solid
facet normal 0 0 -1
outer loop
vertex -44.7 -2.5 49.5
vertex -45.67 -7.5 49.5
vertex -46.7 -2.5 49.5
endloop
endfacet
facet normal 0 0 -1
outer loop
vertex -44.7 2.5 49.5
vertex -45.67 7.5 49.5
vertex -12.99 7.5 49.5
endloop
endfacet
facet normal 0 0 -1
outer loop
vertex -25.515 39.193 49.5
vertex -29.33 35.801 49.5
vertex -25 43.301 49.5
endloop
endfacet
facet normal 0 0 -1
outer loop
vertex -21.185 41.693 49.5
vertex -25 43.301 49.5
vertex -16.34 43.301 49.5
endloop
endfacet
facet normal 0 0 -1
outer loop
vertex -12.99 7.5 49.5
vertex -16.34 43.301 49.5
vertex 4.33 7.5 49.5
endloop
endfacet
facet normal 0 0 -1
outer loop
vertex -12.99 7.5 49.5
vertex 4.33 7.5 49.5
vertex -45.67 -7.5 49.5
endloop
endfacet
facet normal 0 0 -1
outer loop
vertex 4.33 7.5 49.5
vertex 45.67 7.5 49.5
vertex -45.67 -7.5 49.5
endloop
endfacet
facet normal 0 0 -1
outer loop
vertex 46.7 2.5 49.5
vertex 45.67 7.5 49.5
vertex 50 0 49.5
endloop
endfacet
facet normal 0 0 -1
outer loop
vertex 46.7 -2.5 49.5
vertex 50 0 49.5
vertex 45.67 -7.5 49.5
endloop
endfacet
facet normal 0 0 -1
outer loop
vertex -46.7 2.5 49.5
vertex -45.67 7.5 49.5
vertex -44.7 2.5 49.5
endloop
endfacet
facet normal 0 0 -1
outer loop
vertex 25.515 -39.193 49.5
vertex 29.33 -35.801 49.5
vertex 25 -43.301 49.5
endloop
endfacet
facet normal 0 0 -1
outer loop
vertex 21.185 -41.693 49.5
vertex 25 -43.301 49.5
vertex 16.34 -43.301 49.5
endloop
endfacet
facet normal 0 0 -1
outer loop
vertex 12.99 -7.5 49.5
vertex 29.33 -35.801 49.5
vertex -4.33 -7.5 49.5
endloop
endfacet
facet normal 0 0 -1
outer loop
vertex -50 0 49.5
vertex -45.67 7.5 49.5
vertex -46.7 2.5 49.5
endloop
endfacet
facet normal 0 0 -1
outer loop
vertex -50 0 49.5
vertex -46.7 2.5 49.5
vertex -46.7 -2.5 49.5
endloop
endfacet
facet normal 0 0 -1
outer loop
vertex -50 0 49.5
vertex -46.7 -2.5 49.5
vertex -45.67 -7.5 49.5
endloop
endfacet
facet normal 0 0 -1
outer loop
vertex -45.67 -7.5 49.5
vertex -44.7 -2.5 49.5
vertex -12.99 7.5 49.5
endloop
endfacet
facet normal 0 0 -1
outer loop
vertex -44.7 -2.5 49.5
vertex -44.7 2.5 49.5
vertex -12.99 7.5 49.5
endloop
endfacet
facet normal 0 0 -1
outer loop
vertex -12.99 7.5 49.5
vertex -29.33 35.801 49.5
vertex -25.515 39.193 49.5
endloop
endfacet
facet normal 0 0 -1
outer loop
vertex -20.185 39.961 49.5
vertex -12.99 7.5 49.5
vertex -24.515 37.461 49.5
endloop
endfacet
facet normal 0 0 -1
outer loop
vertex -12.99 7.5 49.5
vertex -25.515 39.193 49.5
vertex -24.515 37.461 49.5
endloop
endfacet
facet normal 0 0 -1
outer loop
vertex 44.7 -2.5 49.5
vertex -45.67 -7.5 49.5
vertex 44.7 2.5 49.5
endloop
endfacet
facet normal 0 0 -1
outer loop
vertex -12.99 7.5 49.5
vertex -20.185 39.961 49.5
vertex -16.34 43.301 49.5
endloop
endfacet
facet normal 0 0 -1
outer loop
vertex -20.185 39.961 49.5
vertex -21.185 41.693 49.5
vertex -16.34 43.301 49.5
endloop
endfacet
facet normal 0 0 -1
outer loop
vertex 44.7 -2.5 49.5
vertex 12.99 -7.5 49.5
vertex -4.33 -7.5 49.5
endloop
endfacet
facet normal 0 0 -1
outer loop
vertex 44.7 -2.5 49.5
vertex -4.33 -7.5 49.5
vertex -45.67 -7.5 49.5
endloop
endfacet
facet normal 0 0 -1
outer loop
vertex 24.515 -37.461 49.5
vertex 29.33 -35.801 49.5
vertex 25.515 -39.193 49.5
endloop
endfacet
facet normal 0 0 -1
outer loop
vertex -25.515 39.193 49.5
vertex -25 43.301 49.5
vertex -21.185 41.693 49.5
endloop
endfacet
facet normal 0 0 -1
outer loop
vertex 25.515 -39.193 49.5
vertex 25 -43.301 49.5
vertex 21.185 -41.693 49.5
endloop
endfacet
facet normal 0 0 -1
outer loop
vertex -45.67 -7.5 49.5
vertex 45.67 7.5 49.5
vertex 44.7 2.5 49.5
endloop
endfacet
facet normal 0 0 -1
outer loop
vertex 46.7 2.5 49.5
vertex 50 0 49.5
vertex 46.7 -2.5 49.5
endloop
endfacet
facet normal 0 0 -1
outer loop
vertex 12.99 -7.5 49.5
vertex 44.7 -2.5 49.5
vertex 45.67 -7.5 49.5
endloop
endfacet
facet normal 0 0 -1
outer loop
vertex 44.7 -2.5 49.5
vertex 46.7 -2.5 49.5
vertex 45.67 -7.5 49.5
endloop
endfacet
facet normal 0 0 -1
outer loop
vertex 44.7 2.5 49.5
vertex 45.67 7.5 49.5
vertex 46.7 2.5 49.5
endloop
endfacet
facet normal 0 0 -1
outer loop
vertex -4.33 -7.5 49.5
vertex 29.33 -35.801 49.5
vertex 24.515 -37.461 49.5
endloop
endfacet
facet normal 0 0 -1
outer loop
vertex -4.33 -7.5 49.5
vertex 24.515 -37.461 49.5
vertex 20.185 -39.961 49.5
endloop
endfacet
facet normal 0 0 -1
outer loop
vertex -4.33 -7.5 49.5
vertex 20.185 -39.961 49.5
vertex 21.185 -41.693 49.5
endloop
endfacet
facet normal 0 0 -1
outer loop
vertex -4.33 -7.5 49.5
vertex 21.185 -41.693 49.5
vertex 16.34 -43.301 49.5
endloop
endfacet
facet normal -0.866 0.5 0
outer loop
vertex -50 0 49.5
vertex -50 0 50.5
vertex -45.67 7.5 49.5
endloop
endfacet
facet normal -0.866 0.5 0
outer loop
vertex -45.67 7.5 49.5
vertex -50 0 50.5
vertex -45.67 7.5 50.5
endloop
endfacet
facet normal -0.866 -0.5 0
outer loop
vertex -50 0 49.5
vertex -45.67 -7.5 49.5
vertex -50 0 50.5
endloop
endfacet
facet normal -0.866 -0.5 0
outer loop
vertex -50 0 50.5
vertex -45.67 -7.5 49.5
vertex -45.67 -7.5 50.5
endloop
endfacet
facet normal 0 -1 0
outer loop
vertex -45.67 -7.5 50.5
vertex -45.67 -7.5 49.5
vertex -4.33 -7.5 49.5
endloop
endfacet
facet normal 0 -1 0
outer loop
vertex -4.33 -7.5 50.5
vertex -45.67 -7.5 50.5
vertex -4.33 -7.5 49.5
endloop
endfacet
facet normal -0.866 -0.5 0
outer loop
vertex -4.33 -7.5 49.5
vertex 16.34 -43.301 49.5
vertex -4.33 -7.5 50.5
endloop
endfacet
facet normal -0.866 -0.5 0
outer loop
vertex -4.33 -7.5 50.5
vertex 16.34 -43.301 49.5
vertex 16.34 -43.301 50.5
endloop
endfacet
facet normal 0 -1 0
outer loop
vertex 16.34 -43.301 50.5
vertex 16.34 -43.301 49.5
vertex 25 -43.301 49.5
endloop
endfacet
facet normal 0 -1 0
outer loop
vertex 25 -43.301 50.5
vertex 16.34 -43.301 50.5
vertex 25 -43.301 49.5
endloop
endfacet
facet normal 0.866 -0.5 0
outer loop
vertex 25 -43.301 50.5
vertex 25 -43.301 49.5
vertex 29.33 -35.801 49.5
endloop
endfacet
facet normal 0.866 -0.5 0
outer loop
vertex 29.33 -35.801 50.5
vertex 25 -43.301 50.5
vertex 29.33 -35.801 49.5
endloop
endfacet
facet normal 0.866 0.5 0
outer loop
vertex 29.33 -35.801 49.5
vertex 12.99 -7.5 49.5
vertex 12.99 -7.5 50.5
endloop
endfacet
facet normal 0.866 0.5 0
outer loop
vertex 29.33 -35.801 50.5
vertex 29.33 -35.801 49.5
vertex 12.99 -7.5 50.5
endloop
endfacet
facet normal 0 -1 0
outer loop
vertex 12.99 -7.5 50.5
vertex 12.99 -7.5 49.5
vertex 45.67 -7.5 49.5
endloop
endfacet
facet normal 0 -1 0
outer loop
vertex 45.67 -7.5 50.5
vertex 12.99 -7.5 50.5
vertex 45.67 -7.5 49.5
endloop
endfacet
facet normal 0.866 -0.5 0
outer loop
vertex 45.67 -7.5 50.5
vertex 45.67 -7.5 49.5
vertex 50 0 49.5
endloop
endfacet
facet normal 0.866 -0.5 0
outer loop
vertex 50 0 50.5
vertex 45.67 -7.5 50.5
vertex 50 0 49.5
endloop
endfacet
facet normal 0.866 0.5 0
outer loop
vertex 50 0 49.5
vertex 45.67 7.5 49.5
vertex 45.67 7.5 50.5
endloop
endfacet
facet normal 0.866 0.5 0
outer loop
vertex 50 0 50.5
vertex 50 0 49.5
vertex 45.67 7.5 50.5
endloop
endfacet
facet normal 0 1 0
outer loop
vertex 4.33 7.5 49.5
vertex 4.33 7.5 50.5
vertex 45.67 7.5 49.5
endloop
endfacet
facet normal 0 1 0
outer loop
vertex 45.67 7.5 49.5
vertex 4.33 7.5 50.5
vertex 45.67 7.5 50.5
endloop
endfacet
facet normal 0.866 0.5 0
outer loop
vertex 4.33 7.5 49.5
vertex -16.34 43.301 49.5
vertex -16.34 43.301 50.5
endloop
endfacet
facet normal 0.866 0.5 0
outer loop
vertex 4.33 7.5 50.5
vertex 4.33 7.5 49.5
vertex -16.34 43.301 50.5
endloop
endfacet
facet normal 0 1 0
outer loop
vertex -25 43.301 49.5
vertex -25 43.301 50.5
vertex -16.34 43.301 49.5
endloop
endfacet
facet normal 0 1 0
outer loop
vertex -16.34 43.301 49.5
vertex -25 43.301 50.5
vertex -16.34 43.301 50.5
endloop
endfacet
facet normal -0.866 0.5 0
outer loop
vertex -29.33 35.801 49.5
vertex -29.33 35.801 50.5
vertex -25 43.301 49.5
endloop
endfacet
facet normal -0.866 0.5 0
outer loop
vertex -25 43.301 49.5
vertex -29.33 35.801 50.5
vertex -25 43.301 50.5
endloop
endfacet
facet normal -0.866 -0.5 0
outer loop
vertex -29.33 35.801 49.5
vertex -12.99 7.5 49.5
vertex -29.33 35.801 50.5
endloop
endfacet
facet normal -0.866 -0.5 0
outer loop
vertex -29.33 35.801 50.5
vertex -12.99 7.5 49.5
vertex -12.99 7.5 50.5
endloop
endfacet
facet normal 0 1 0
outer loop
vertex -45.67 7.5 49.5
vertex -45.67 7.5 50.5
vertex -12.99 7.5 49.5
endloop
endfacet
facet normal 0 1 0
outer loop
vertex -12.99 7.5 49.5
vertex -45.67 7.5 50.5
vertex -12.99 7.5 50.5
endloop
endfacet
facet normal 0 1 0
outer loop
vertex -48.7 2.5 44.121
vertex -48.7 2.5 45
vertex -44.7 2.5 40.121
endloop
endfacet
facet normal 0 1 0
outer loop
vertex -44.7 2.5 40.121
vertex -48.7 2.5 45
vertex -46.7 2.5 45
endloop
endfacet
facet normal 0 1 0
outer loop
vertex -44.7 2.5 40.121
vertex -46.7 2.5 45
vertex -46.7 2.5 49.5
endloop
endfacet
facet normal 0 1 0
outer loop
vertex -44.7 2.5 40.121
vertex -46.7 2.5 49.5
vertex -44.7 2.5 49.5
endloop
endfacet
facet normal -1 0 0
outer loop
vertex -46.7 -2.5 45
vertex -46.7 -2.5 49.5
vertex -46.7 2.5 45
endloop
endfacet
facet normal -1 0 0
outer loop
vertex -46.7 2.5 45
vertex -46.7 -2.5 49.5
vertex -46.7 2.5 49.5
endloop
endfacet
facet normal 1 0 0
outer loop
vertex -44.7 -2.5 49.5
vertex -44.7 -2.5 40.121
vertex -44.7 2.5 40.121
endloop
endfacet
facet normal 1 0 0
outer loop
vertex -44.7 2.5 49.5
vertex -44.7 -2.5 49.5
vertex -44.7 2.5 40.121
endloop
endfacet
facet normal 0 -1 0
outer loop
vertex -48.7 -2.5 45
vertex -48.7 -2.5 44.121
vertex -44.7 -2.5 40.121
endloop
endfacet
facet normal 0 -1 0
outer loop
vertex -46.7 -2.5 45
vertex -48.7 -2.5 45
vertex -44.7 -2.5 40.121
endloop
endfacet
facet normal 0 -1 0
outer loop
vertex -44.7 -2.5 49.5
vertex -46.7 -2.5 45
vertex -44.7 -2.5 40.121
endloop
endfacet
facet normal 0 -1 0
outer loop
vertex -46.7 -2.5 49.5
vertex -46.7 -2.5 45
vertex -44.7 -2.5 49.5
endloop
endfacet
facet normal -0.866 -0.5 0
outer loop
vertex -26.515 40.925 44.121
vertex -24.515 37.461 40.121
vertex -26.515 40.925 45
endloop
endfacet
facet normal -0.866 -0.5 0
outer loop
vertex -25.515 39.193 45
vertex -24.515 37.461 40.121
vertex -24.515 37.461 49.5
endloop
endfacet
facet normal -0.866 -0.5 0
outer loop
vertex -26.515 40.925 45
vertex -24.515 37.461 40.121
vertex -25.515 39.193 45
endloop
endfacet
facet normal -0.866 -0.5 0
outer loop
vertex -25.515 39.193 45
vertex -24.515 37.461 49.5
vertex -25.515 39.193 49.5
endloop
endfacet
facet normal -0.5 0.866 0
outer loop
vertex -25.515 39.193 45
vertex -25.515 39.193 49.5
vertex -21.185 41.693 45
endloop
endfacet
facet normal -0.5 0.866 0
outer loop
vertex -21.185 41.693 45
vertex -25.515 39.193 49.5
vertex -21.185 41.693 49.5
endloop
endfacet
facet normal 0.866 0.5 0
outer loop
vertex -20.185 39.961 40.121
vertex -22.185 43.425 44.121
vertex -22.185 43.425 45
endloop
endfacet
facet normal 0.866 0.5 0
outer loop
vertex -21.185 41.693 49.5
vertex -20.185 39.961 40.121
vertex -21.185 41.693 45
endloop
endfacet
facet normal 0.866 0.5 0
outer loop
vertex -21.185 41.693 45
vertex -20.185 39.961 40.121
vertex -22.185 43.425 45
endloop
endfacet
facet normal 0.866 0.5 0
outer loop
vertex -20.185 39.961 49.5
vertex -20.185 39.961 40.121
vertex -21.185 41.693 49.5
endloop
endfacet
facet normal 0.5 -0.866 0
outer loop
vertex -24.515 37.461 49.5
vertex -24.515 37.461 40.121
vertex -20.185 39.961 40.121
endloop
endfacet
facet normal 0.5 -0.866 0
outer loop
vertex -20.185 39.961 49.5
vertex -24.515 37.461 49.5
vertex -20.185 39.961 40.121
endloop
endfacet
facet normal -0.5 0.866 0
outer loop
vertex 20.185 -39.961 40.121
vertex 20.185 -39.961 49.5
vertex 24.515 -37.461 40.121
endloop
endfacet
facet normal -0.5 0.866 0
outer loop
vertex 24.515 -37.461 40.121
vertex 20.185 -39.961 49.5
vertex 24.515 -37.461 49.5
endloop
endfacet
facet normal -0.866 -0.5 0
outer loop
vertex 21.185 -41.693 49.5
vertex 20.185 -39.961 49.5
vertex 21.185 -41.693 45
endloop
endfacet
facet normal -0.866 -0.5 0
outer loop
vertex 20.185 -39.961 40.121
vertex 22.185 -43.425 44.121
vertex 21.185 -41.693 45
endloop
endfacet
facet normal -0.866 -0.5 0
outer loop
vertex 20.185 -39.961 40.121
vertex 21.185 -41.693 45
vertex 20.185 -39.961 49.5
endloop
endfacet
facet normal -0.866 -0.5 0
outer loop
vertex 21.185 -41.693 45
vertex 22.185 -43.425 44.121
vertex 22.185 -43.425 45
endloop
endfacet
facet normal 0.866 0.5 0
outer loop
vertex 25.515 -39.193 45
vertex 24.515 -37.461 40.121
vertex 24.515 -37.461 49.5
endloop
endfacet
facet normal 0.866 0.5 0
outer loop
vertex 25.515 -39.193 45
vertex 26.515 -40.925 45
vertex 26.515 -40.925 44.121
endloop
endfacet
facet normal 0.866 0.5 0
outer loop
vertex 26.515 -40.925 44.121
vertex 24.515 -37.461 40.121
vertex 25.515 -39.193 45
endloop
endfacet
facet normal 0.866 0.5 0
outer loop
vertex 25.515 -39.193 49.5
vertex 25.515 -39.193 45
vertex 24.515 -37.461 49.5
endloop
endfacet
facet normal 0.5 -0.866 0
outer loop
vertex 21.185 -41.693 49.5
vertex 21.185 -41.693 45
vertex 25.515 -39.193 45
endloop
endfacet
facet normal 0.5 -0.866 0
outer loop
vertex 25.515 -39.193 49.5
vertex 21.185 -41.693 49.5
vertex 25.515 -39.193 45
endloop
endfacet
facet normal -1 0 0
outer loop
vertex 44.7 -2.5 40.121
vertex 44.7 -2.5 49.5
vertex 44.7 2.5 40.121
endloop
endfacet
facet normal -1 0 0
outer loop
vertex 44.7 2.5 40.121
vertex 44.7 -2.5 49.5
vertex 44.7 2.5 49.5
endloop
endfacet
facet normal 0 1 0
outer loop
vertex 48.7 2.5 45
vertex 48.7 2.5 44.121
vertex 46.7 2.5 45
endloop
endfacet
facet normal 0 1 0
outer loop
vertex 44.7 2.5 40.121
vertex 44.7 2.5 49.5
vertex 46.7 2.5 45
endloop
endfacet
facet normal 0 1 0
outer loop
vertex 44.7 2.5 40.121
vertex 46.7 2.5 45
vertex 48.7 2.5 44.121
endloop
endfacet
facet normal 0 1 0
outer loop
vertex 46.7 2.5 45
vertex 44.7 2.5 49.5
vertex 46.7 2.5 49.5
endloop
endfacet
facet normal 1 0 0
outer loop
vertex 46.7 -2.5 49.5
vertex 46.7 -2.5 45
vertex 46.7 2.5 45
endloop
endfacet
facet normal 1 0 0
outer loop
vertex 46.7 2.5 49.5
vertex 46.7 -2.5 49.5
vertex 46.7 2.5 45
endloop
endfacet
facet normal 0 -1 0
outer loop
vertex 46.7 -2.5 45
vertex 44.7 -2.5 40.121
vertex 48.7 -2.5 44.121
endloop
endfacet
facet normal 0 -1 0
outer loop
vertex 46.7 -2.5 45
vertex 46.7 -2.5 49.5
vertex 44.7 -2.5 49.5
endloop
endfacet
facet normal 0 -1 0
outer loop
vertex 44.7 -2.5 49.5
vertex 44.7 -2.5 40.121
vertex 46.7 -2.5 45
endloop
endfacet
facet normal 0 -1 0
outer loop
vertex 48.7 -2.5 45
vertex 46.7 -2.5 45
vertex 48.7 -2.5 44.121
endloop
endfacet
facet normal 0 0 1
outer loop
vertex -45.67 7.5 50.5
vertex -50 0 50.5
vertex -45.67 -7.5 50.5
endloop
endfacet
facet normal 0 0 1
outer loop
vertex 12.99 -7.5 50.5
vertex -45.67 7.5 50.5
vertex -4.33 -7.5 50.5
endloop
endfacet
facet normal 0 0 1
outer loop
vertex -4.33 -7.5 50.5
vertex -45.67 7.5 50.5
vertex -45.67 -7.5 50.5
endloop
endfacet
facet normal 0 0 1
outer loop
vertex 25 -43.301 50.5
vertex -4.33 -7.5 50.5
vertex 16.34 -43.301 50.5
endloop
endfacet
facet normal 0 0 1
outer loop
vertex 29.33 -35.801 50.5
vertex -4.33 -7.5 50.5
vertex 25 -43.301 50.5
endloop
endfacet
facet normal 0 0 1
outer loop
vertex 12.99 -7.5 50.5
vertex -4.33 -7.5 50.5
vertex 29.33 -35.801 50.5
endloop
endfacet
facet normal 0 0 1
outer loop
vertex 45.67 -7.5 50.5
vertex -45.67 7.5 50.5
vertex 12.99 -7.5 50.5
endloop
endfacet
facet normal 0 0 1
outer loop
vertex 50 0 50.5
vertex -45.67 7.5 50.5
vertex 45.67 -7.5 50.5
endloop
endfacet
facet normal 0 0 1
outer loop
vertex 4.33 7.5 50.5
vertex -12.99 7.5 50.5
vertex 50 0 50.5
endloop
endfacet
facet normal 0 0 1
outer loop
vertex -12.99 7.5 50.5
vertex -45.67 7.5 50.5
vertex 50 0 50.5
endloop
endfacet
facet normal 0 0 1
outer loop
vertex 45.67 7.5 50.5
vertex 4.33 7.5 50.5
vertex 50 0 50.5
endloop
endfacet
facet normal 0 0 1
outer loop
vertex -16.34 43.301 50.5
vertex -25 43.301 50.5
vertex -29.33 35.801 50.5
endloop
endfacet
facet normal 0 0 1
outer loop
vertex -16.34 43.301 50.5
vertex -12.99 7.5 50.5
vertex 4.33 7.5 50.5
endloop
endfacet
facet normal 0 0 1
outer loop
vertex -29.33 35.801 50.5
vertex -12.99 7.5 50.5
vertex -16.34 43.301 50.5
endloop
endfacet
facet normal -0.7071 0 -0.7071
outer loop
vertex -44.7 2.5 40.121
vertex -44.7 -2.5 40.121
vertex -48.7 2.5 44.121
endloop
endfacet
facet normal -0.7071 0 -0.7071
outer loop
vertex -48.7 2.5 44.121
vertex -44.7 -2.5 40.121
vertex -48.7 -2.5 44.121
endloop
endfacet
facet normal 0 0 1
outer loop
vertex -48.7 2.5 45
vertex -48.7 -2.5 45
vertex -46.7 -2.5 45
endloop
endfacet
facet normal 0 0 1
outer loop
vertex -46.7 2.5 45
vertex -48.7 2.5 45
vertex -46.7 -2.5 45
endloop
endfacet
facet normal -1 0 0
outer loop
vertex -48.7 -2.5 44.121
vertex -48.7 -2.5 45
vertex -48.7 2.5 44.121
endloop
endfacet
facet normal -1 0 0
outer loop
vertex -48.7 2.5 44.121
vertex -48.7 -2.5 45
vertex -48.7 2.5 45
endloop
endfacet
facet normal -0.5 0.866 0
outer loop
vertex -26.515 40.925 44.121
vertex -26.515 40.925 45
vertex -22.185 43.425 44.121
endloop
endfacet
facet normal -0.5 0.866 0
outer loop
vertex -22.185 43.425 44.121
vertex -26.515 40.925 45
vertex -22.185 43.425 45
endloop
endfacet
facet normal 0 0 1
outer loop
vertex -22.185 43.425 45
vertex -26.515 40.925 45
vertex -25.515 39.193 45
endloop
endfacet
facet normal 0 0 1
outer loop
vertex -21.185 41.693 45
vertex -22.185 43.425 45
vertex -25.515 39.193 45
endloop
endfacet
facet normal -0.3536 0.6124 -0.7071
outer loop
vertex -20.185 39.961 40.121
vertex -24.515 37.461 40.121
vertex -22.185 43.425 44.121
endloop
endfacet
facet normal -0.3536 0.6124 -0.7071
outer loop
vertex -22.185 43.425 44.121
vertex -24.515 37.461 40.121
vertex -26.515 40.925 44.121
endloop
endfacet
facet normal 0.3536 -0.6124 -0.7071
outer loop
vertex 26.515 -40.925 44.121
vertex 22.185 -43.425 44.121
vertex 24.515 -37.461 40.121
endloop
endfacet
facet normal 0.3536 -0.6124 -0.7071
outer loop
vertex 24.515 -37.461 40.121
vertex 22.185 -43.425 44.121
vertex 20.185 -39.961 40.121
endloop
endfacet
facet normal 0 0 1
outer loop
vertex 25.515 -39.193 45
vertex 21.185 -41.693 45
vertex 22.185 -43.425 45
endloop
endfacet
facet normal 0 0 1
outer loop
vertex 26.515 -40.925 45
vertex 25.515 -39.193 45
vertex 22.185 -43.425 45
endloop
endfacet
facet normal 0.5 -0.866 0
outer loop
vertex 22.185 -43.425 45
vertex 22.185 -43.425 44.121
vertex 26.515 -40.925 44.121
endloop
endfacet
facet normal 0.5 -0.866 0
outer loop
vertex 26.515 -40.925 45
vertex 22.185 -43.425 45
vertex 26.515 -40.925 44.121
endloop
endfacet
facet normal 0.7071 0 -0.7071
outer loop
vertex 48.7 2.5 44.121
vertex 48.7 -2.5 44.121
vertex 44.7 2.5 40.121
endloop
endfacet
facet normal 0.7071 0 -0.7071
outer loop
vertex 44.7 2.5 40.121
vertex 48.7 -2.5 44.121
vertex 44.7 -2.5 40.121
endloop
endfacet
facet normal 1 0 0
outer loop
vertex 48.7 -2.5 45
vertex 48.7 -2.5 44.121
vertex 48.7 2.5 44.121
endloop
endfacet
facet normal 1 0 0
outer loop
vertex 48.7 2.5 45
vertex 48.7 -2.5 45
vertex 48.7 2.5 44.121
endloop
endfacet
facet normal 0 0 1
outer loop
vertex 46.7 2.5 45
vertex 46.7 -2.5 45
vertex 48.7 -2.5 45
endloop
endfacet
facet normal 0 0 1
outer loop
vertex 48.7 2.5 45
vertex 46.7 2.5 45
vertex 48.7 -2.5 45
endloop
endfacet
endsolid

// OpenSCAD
width = 50;
height = 40;
wall_thickness = 2;
face_thickness = 1;
screw_radius = 2;
notch_height = 10;

module notch() {	
	difference() {
		union() {
			cube([5, wall_thickness, notch_height]);
			translate([0, -wall_thickness, 0])
				cube([5, wall_thickness, notch_height / 2]);
		}
		rotate([45, 0, 0])
			translate([0, -2.5, -1.5])
				cube([5, wall_thickness * 2, 7]);
	}
}

module lid() {
	intersection() {
		cylinder(r=width, h=face_thickness, $fn=6, center=true);
		for (i=[0:1]) {
			rotate([0, 0, 360 / 6 * (i + 0) + 30])
				cube([15, width * 2, wall_thickness], center=true);	
		}
	}
	// Hooks
	for (i=[0:5]) {
		if ((i != 1) && (i != 4)) {
			rotate([0, 0, 360 / 6 * (i + 0)])
				translate([width - (wall_thickness * 2) + 0.7, -2.5, -notch_height])
					rotate([0, 0, 90])
						notch();
		}
	}
}


translate([0, 0, 50])
	lid();
